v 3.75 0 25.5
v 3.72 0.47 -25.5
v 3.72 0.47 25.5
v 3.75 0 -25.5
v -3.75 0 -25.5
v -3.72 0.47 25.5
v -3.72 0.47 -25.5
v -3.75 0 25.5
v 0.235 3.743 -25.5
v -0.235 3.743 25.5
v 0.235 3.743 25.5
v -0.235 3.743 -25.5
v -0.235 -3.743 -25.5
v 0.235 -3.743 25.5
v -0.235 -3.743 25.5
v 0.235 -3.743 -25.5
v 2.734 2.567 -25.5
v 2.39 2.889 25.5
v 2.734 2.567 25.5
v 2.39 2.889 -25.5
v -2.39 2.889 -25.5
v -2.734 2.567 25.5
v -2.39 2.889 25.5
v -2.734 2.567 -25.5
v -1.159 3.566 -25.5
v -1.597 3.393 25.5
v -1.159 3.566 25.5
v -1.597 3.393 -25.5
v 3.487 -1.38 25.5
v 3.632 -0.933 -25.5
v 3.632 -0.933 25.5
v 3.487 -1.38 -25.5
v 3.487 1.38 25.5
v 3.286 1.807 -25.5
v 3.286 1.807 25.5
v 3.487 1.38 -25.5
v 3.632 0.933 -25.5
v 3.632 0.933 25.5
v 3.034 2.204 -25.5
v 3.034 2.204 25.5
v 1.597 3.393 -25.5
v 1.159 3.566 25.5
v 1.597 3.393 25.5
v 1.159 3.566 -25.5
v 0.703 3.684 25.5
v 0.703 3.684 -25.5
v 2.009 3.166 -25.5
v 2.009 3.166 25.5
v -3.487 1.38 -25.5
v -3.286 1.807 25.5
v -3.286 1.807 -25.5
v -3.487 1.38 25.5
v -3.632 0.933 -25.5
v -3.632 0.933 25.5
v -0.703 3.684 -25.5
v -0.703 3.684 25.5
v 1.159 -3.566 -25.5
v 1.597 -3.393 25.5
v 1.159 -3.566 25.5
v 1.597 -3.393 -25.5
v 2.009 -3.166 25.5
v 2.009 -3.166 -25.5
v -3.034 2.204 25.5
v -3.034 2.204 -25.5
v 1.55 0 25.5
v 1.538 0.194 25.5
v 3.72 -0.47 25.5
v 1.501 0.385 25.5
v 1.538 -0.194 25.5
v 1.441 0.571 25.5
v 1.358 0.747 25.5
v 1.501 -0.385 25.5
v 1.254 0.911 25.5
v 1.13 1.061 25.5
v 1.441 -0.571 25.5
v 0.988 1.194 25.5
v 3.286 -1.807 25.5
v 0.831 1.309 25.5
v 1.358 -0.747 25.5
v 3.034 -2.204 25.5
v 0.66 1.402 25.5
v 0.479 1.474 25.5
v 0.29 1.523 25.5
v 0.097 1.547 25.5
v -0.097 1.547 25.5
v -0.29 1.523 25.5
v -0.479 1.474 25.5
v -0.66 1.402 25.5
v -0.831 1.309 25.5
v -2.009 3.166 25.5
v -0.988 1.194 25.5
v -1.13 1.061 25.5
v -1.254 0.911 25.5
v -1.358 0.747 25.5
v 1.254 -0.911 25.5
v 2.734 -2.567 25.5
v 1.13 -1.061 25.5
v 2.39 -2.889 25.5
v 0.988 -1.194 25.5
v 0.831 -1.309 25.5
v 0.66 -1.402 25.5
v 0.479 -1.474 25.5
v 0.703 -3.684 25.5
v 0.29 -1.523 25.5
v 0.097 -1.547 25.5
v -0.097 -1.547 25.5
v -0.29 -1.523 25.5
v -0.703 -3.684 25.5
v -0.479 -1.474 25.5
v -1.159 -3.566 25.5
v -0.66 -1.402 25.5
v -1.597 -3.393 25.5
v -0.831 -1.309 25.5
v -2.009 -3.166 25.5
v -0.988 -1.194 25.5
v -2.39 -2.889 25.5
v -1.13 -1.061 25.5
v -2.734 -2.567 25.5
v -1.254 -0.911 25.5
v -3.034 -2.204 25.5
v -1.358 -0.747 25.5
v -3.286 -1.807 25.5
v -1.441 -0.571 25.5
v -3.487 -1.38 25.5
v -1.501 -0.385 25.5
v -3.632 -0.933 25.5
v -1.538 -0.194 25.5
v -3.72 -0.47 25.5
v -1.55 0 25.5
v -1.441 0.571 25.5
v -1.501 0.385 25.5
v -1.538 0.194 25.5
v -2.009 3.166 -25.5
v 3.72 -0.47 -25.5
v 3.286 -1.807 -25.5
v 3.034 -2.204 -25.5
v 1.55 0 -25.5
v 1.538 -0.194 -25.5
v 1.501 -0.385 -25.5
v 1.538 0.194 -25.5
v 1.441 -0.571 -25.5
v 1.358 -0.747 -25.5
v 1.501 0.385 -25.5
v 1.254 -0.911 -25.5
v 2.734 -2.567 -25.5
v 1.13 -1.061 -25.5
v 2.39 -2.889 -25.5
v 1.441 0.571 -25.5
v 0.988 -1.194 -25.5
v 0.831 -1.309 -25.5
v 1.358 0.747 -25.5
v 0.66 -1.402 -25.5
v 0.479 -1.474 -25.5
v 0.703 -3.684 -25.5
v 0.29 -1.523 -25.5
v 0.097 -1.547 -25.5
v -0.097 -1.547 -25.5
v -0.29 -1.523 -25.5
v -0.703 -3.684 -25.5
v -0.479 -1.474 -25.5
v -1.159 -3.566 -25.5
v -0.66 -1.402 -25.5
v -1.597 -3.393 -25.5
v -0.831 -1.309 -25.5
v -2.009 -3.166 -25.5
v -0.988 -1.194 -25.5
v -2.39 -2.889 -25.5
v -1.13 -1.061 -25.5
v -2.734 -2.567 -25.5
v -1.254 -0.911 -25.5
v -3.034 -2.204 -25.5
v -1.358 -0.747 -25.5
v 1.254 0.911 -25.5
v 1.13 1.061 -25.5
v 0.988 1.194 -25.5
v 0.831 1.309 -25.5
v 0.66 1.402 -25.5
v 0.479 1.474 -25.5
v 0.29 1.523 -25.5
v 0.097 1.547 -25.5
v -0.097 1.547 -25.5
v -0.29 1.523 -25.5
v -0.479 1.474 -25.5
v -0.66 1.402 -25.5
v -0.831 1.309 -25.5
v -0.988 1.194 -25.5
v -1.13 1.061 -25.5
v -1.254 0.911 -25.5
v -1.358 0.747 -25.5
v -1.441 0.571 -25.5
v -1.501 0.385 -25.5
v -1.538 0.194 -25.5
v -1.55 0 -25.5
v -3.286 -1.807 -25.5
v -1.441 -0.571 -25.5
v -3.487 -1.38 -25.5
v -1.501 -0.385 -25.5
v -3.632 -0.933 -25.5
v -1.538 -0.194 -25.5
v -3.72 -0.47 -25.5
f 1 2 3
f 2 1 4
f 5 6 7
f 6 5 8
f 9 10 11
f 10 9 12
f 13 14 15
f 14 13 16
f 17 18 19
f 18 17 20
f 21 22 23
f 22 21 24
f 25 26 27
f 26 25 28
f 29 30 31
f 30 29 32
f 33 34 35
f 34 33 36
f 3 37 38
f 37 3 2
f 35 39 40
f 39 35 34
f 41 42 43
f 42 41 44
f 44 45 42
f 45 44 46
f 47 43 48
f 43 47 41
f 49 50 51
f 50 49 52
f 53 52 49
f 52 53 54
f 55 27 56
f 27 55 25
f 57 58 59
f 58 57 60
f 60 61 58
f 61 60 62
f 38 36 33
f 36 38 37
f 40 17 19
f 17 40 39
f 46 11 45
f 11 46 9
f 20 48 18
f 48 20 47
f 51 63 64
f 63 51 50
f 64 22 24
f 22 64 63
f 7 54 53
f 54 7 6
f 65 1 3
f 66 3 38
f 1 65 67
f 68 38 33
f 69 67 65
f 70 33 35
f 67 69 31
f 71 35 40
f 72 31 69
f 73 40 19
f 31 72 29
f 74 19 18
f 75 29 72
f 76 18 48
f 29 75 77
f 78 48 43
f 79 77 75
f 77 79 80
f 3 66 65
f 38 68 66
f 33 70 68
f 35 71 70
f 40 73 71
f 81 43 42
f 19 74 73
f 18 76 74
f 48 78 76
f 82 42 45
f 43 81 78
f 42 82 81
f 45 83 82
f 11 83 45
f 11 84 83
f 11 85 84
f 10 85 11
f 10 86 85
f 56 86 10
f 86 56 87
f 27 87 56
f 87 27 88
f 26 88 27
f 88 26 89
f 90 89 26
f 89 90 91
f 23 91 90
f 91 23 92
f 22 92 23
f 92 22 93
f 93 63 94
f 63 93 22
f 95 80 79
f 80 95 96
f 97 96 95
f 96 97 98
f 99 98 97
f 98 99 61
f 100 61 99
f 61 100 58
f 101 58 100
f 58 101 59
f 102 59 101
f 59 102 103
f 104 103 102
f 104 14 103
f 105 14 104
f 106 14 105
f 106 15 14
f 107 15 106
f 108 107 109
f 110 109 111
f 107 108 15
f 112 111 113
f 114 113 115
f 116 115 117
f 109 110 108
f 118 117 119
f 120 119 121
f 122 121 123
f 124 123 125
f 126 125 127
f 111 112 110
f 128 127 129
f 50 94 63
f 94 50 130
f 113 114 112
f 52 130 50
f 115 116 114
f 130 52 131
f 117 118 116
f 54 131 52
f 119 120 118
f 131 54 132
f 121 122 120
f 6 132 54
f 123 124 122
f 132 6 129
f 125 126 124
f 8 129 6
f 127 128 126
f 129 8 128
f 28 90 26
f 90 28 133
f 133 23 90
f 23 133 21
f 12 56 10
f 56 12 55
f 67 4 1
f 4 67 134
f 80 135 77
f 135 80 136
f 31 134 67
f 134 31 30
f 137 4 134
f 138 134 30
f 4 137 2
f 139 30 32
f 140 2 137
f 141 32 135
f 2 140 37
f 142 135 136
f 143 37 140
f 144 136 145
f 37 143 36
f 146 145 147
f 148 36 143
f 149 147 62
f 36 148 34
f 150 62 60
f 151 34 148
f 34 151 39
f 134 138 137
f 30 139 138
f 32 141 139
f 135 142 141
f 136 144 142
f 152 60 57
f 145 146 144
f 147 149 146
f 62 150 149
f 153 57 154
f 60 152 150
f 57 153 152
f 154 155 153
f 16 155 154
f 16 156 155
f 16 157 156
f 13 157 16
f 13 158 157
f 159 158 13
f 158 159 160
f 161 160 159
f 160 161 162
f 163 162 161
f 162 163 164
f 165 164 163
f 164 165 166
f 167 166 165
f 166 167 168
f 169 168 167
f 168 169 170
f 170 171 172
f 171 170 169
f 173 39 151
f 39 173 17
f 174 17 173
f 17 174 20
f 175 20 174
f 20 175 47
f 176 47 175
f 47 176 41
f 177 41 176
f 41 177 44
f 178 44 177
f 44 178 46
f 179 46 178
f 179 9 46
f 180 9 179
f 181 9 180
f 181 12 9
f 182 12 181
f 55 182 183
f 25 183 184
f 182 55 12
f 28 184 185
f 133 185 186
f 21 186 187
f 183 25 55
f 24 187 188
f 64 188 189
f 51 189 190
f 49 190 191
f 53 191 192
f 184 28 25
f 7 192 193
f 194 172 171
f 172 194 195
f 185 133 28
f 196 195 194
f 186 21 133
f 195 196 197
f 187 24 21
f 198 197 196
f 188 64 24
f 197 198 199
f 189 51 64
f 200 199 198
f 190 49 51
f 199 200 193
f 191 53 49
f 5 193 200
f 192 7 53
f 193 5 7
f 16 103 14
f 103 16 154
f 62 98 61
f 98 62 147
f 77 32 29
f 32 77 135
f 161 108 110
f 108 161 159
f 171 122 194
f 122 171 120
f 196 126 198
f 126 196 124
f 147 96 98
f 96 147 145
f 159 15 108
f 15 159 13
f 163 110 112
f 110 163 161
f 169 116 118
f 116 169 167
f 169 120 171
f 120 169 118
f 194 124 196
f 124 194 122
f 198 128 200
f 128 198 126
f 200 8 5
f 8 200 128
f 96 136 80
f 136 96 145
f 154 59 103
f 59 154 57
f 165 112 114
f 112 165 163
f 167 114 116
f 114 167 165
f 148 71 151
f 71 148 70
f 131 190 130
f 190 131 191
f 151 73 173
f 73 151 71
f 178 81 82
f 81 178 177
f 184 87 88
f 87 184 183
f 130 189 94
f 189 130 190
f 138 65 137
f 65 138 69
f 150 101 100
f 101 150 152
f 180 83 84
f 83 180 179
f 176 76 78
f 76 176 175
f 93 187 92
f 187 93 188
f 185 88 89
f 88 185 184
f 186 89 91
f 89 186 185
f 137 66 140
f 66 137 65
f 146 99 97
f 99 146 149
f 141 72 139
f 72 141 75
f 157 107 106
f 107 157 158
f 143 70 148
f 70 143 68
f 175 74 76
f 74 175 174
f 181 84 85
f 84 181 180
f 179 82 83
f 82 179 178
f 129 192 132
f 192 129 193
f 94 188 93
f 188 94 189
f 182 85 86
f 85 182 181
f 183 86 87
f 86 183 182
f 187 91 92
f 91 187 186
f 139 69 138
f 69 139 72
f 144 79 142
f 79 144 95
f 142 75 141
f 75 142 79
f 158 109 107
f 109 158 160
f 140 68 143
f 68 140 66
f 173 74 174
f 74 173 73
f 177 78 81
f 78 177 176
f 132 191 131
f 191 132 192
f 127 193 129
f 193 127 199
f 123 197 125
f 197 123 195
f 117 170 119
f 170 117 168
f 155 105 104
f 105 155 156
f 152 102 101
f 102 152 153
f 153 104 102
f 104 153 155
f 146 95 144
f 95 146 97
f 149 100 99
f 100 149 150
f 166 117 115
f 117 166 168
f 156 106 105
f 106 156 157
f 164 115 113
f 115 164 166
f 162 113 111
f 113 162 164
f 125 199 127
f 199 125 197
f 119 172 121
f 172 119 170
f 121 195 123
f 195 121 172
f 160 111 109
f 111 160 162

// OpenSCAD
$fn = 50;


difference() {
	union() {
		translate(v = [0, 0, -25.5000000000]) {
			cylinder(h = 51, r = 3.7500000000);
		}
	}
	union() {
		translate(v = [0, 0, -100.0000000000]) {
			cylinder(h = 200, r = 1.5500000000);
		}
	}
}
